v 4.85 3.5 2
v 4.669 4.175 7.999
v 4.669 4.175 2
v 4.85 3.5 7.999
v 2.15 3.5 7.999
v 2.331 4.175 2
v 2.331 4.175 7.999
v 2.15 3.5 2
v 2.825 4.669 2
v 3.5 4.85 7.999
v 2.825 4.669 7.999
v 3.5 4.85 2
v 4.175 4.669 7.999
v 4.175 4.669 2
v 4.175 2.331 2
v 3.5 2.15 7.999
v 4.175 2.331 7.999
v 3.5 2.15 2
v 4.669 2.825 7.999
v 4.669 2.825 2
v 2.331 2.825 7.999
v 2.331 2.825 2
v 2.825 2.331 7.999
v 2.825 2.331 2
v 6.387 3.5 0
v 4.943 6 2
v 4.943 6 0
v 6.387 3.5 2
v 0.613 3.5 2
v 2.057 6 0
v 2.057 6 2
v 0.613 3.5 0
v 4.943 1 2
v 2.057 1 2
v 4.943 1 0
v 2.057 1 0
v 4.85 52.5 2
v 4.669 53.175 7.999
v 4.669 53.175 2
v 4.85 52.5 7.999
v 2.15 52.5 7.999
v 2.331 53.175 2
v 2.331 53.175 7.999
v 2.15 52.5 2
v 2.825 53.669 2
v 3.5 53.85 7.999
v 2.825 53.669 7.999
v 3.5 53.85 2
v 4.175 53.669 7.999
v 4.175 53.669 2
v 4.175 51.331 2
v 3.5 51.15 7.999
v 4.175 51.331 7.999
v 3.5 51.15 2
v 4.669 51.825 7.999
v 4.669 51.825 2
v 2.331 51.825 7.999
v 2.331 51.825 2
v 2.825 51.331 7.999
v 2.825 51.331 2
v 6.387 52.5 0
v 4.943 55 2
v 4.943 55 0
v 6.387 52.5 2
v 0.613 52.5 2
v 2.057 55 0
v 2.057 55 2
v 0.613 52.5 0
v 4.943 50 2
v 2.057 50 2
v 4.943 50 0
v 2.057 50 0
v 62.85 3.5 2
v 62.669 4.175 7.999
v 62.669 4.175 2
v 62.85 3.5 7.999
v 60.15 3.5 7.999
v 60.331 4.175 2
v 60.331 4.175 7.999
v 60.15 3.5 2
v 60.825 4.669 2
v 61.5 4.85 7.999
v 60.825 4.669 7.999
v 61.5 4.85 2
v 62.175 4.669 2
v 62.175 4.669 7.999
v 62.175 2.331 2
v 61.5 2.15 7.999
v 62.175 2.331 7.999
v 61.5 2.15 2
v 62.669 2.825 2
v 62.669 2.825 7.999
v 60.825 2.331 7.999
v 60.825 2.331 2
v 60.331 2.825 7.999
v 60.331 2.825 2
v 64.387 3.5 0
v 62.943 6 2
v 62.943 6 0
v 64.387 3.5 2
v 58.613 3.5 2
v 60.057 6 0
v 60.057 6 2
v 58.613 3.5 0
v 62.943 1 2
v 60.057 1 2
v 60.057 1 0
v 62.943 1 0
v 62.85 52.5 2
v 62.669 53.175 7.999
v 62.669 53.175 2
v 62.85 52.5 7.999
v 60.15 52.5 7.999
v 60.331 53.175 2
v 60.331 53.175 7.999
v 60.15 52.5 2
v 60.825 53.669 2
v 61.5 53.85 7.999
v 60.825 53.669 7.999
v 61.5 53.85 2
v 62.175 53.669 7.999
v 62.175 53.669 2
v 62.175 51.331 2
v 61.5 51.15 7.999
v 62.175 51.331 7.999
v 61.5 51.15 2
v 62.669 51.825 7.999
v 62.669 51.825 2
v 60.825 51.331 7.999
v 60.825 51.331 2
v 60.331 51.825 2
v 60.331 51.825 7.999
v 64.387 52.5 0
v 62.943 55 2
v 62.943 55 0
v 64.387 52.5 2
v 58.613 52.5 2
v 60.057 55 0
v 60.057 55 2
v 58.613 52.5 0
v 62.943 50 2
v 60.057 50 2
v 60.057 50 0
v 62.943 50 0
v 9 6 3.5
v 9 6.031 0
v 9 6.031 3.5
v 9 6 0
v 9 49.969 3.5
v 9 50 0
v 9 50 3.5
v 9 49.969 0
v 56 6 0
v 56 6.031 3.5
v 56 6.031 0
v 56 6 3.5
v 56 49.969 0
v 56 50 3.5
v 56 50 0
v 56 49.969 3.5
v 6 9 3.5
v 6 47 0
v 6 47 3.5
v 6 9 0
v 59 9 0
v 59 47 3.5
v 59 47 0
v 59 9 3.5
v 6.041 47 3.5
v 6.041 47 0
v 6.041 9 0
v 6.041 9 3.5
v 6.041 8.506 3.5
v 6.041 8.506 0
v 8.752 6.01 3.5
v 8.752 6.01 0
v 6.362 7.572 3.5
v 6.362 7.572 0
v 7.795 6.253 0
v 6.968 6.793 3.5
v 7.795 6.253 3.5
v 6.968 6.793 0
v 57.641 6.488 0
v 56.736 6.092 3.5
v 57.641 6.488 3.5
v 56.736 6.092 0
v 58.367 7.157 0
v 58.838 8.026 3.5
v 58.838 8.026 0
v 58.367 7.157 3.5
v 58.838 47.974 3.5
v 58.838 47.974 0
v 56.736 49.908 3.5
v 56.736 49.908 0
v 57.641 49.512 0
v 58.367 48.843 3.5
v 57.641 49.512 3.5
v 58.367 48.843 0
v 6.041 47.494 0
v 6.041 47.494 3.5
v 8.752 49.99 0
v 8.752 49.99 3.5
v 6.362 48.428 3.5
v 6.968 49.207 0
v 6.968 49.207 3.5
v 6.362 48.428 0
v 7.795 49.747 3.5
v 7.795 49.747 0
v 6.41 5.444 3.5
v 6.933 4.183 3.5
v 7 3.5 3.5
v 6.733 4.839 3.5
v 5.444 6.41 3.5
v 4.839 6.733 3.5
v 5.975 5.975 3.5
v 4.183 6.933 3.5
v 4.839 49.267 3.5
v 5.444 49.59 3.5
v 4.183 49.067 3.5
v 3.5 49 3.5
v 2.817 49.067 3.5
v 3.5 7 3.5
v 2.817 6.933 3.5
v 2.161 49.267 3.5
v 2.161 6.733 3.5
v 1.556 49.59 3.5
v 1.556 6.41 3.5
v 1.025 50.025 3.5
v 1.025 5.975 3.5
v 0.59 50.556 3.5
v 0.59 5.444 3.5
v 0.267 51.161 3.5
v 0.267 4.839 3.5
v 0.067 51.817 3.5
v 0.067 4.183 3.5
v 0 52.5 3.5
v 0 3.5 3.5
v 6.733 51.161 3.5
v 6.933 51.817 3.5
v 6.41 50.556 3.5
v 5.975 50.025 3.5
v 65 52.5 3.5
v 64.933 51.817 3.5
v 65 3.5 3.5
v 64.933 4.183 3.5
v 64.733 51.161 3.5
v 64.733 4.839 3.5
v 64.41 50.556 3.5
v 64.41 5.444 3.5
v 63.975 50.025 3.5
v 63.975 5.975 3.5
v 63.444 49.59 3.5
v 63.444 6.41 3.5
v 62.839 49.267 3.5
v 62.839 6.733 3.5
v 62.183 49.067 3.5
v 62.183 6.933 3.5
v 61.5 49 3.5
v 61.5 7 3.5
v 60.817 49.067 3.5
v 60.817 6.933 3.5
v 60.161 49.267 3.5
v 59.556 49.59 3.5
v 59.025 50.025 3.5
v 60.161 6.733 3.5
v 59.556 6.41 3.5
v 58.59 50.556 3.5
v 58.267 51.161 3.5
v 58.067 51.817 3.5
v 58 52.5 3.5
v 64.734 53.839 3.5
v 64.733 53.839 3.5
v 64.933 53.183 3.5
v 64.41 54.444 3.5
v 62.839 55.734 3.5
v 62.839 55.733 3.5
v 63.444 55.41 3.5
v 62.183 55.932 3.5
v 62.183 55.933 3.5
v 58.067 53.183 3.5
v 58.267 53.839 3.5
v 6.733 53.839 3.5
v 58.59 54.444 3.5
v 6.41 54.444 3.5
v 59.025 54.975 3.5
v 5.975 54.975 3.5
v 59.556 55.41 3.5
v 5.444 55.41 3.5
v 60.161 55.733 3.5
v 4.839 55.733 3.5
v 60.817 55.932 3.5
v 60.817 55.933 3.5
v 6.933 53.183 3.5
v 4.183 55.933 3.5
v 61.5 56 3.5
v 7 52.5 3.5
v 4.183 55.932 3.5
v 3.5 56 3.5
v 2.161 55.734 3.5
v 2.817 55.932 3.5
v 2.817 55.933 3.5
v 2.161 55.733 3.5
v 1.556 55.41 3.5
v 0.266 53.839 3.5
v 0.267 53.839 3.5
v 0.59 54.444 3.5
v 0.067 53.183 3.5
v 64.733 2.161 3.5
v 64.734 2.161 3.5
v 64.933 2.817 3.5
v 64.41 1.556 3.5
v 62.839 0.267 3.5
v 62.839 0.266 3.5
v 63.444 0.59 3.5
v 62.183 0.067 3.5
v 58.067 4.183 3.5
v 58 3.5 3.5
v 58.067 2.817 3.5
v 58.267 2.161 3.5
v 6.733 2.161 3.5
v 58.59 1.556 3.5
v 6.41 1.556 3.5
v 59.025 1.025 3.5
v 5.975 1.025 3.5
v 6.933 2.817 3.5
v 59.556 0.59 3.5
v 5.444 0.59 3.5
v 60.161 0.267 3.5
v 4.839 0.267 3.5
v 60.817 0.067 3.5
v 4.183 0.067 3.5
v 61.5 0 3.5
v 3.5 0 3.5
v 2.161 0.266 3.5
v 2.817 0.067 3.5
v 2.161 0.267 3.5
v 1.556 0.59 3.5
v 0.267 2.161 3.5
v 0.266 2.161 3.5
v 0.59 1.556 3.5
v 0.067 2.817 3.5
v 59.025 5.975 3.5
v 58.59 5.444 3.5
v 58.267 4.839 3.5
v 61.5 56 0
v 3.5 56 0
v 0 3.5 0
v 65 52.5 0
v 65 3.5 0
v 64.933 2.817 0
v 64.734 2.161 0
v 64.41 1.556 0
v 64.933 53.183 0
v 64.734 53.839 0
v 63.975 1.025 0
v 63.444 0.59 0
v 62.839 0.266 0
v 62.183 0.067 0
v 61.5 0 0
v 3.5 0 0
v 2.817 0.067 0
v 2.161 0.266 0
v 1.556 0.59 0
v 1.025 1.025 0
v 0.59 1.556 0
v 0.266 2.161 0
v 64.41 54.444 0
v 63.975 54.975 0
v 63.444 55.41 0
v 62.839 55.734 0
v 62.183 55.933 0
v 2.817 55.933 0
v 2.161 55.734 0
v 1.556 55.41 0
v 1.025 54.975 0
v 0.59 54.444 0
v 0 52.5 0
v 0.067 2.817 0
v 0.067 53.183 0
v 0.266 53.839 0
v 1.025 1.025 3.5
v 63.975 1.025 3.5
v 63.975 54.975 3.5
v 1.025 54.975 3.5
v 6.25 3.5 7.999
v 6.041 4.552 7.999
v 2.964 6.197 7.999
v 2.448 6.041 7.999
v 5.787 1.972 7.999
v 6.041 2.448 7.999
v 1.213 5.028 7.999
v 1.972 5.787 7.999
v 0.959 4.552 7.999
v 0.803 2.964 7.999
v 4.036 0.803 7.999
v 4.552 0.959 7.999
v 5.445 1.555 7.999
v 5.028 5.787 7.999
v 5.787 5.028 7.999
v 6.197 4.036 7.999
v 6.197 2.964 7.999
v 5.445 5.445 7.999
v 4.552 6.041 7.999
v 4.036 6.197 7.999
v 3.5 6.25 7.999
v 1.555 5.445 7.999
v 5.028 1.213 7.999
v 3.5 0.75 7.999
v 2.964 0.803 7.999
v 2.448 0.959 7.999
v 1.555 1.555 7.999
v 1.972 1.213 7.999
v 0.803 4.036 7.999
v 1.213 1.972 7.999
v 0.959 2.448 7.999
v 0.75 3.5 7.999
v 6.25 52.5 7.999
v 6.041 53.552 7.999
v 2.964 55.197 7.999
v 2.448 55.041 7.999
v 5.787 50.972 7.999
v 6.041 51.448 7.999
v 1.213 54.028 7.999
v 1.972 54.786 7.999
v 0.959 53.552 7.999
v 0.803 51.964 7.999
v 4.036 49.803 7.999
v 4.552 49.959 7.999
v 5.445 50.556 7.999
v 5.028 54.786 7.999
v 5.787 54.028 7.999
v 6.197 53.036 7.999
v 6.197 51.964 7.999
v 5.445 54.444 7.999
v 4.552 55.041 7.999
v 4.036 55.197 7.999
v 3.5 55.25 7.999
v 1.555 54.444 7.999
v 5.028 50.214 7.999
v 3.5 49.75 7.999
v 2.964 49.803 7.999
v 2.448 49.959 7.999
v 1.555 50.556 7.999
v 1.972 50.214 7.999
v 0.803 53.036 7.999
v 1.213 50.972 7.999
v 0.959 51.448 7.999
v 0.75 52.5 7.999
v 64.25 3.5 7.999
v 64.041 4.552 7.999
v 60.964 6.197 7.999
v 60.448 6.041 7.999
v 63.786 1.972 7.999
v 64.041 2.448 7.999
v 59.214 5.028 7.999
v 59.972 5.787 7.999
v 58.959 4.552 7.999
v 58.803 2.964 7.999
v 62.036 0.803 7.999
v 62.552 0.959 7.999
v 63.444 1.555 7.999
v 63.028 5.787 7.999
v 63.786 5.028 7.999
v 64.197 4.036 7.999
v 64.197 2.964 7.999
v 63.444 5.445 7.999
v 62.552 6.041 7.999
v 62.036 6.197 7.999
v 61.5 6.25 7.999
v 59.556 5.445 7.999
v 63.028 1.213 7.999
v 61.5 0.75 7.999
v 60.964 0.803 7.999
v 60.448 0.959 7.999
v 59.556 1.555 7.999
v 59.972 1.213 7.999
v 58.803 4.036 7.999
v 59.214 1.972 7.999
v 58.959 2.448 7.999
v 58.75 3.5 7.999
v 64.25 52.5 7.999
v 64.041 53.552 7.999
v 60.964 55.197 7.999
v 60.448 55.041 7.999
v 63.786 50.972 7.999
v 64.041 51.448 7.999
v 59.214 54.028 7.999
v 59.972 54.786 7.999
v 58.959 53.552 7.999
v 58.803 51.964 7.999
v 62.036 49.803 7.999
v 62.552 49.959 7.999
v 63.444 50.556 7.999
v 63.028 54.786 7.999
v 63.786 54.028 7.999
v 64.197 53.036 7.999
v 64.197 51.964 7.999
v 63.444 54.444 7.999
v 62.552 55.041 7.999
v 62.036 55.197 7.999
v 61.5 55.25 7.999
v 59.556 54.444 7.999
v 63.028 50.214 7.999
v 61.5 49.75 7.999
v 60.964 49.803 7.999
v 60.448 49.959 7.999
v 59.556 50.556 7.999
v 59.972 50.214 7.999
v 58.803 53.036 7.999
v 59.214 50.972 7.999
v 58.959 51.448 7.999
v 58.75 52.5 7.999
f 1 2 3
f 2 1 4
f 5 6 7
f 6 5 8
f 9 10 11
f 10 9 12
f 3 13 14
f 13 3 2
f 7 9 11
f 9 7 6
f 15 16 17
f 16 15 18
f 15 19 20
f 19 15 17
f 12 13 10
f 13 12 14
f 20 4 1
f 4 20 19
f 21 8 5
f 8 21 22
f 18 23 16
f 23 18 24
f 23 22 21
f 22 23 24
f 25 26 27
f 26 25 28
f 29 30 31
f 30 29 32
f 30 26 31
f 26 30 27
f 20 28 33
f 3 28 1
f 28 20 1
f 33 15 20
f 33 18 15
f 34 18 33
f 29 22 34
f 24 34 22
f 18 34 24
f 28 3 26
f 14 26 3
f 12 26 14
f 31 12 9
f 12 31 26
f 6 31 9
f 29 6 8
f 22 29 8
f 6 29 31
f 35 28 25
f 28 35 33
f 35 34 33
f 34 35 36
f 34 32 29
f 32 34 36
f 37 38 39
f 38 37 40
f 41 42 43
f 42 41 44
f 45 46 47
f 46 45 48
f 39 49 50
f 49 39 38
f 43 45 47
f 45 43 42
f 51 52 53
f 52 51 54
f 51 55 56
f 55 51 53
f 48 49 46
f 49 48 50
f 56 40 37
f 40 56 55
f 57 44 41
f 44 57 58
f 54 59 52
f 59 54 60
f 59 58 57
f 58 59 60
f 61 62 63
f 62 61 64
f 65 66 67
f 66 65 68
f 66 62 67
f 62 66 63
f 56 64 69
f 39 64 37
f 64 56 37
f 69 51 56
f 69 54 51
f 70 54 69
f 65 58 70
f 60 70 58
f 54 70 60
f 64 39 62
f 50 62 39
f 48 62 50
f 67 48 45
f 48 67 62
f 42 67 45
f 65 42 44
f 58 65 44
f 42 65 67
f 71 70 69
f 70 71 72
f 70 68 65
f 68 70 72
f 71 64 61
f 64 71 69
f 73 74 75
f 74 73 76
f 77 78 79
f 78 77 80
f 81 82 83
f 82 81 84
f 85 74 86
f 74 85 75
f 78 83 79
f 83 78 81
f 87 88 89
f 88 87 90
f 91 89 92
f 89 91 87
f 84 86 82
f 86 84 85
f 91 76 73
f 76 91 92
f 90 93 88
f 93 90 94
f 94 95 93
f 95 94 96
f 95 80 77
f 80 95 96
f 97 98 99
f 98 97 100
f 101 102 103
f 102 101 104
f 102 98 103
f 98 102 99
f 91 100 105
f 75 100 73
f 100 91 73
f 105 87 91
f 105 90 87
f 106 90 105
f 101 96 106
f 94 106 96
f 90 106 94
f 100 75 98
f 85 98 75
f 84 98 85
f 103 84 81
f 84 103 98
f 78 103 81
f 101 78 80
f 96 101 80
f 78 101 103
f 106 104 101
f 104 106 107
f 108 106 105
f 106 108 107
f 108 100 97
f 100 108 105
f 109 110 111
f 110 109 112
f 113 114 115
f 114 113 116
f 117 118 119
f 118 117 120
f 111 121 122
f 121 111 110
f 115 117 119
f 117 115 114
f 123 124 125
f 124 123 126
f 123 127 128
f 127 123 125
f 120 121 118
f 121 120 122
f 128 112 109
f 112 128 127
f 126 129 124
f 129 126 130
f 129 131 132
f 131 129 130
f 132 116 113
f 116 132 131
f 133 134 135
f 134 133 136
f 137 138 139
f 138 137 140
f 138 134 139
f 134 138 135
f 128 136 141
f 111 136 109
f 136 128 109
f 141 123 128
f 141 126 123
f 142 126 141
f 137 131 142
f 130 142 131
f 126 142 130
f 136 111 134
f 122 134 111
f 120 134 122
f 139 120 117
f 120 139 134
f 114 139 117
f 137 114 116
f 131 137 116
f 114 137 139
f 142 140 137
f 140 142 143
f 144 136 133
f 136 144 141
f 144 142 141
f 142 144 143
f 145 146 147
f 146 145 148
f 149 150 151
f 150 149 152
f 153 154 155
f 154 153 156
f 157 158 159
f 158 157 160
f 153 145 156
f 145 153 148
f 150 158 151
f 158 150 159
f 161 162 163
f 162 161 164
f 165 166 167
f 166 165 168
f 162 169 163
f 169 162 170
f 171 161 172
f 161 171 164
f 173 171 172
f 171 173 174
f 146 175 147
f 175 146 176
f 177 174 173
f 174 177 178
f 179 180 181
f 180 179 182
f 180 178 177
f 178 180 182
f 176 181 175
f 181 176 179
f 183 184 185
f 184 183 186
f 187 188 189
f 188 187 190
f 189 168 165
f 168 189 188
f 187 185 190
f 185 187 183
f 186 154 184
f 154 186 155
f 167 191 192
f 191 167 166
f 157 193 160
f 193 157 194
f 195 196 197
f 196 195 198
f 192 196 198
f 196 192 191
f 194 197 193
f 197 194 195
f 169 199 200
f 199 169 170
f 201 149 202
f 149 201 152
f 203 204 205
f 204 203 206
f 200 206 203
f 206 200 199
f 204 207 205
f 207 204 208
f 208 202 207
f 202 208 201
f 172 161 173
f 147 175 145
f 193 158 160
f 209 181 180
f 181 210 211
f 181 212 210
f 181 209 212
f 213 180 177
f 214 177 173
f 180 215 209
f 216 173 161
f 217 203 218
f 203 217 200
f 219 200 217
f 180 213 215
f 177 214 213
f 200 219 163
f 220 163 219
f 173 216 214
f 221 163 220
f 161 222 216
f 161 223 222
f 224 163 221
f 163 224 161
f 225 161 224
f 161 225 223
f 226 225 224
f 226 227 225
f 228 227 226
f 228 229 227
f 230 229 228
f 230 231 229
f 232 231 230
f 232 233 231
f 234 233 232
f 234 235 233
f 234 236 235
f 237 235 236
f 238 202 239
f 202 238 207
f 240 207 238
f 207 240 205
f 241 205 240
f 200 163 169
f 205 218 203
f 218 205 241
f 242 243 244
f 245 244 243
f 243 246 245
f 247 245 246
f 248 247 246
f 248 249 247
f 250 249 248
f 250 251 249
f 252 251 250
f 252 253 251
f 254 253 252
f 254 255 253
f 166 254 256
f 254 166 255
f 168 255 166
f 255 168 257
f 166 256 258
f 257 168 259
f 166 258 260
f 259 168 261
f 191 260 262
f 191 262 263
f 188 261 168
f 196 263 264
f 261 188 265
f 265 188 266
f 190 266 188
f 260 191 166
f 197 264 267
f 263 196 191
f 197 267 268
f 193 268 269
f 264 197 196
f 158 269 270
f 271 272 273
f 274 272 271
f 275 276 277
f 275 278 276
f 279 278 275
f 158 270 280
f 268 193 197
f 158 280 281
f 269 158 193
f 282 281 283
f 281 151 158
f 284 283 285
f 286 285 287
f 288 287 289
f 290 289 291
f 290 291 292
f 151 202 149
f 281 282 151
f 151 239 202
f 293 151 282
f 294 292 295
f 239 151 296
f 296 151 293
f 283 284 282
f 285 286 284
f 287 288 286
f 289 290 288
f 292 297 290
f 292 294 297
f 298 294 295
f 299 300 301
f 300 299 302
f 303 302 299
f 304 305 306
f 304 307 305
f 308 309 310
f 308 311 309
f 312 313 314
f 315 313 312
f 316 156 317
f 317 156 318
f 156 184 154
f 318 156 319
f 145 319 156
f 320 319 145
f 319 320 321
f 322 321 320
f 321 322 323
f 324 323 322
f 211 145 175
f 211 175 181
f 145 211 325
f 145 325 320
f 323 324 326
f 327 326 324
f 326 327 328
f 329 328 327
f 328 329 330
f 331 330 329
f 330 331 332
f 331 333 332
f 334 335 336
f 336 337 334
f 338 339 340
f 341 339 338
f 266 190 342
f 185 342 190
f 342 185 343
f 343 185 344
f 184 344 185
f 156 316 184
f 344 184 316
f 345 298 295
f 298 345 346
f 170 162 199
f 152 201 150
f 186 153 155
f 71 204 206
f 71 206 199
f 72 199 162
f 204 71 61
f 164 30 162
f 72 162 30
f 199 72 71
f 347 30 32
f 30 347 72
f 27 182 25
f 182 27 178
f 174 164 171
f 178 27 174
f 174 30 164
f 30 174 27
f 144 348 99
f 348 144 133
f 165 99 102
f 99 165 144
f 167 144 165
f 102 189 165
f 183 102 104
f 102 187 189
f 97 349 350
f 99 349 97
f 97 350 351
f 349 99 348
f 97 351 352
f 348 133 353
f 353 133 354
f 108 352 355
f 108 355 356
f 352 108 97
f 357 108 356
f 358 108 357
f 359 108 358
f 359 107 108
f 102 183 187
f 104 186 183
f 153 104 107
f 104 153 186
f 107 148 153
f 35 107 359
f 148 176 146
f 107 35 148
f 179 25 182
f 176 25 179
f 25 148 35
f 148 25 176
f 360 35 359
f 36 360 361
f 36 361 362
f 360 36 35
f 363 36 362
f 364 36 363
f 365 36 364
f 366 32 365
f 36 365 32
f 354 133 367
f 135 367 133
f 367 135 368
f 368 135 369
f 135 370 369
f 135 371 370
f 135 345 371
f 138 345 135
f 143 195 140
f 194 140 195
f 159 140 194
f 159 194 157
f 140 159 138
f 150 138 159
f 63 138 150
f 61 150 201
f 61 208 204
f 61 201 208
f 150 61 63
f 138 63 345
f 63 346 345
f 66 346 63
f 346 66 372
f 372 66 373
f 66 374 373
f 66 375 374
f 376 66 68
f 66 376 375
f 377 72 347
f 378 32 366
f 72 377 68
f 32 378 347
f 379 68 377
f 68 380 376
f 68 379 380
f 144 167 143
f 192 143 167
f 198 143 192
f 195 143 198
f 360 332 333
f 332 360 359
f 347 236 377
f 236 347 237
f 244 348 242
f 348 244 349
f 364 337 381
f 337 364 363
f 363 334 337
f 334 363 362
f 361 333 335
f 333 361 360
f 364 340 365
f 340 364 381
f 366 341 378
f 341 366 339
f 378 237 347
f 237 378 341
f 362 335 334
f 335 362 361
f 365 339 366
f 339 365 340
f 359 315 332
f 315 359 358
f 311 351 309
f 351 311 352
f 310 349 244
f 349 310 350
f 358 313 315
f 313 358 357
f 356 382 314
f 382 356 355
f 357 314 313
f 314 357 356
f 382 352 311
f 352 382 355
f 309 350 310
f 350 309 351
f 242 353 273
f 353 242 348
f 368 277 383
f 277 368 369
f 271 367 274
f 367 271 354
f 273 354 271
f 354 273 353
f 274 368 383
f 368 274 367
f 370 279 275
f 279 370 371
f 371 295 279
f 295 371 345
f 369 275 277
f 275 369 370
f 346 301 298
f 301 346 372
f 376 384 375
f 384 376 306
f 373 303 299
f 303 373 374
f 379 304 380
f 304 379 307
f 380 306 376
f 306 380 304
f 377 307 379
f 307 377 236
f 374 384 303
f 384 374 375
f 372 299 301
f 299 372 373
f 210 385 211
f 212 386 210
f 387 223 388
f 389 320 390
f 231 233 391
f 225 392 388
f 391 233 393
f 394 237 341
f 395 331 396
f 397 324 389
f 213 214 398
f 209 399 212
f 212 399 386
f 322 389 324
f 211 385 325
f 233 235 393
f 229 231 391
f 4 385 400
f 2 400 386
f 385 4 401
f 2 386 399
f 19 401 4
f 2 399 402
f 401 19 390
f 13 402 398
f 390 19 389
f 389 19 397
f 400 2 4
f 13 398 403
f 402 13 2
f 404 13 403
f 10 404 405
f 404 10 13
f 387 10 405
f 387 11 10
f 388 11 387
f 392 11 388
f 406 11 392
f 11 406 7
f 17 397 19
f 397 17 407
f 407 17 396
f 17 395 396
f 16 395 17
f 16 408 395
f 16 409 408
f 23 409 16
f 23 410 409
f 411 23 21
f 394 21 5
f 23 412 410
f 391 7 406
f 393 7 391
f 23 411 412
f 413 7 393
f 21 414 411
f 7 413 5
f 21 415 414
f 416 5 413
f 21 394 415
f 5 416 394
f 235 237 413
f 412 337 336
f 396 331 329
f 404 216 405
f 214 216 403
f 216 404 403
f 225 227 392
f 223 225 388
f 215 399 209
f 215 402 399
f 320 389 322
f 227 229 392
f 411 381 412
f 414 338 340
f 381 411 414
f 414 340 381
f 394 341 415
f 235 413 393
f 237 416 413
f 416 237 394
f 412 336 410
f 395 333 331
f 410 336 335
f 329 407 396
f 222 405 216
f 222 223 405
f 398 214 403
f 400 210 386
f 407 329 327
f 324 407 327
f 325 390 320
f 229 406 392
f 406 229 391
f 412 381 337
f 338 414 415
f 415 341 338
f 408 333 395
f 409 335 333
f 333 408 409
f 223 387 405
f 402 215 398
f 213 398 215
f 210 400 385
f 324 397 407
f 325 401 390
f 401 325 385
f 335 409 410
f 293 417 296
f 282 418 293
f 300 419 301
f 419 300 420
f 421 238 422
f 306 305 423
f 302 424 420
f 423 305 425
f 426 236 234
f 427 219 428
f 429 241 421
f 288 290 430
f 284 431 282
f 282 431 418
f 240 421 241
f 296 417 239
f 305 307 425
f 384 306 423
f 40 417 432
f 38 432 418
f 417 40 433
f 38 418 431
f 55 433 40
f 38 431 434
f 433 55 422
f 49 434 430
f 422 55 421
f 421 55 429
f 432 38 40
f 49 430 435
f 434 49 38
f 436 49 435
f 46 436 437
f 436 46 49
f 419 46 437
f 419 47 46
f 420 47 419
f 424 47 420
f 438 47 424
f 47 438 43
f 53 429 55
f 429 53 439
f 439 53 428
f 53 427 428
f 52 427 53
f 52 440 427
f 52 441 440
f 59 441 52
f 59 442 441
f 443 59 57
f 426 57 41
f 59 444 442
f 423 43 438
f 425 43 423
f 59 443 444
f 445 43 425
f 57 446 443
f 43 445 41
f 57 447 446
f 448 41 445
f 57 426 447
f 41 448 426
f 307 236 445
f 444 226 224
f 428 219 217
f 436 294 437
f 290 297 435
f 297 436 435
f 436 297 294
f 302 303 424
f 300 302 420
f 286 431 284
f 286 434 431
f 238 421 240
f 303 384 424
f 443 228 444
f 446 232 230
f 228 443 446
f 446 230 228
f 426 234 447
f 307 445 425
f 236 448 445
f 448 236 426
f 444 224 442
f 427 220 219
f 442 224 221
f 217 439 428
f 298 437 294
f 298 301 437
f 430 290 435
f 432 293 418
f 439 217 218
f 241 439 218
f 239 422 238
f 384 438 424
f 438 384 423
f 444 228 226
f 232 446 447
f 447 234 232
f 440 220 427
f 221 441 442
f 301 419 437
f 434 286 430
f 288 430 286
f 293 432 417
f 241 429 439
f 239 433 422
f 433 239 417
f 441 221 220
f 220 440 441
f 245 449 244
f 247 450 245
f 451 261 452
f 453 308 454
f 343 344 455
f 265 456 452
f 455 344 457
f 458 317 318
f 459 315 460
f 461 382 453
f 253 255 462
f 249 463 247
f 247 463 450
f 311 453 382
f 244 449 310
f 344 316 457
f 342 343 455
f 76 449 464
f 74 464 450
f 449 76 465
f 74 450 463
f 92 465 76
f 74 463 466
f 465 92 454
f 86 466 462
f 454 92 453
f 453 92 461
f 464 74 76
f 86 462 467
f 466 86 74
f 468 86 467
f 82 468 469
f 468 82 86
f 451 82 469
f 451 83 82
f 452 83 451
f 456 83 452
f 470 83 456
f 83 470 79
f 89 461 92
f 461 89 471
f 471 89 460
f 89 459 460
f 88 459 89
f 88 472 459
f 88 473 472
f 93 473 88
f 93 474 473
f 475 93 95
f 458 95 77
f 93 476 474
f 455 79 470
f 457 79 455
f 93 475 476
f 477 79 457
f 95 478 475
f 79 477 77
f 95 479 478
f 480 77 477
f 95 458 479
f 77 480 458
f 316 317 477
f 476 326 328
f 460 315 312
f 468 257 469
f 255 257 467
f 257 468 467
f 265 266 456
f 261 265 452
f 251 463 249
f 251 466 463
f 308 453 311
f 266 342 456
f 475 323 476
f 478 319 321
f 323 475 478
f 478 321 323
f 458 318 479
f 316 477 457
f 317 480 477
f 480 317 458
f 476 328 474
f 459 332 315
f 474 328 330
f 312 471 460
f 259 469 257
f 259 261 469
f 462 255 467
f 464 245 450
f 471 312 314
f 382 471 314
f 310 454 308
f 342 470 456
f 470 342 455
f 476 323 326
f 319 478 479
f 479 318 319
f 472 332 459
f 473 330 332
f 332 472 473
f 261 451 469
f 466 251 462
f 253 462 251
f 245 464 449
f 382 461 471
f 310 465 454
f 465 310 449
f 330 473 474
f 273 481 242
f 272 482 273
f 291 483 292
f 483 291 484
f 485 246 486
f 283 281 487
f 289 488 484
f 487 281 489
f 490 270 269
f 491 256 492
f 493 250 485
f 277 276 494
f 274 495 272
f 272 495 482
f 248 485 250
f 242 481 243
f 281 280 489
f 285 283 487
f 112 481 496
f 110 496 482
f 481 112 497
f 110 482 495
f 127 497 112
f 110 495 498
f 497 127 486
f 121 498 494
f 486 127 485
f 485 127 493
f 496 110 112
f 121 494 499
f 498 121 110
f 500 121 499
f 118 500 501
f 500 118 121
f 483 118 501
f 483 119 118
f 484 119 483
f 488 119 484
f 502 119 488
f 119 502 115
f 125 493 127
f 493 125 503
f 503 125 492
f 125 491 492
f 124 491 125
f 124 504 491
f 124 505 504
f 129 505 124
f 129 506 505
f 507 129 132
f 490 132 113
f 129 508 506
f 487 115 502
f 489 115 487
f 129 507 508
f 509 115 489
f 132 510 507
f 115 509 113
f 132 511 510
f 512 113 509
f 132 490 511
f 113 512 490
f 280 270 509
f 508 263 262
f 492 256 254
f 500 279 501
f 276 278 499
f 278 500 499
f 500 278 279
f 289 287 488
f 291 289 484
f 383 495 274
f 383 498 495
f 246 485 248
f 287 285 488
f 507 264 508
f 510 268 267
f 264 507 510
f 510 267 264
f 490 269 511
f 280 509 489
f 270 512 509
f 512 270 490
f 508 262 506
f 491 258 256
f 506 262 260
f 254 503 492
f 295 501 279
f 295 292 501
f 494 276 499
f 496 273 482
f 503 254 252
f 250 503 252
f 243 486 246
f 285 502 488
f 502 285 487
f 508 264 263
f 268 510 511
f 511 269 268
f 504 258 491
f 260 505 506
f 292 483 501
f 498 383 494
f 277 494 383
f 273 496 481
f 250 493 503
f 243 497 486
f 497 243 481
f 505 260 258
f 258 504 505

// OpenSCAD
//rounded_cube2([20,30,2], 2);
module rounded_cube2(v, r){
  $fs = 1;
  if(v[2]){
    union(){
      translate([r,0,0])           cube([v[0]-2*r, v[1]    , v[2]]);
      translate([0,r,0])           cube([v[0]    , v[1]-2*r, v[2]]);
      translate([r,r,0])           cylinder(h=v[2], r=r);
      translate([v[0]-r,r,0])      cylinder(h=v[2], r=r);
      translate([v[0]-r,v[1]-r,0]) cylinder(h=v[2], r=r);
      translate([r,v[1]-r,0])      cylinder(h=v[2], r=r);
    }
  } else {
    union(){
      translate([r,0])           square([v[0]-2*r, v[1]    ]);
      translate([0,r])           square([v[0]    , v[1]-2*r]);
      translate([r,r])           circle(r=r);
      translate([v[0]-r,r])      circle(r=r);
      translate([v[0]-r,v[1]-r]) circle(r=r);
      translate([r,v[1]-r])      circle(r=r);
    }
  }
}

translate([0,0,8])
%pi();
module pi(){
  difference(){
    rounded_cube2([85,56,3], 3);
    for(i=[0,1])
      for(j=[0,1])
        translate([3.5+i*58, 3.5+j*49, -1])
          cylinder(d=2.7, h=5, $fn=12);
  }
}

pimount();
module pimount() {
  difference(){
    union() {
      rounded_cube2([65,56,3.5], 3.5, $fn=32);
      for(i=[0,1])
        for(j=[0,1])
          translate([3.5+i*58, 3.5+j*49, 3.499])
            cylinder(d1=7, d2=5.5, h=4.5, $fn=32);
    }
    for(i=[0,1])
      for(j=[0,1])
        translate([3.5+i*58, 3.5+j*49, -1]) {
          cylinder(d=2.7, h=10, $fn=12);
          cylinder(d=5/cos(30), h=3, $fn=6);
        }
    translate([6, 6, -1])
    rounded_cube2([65-12,56-12,5], 3);
  }
}
